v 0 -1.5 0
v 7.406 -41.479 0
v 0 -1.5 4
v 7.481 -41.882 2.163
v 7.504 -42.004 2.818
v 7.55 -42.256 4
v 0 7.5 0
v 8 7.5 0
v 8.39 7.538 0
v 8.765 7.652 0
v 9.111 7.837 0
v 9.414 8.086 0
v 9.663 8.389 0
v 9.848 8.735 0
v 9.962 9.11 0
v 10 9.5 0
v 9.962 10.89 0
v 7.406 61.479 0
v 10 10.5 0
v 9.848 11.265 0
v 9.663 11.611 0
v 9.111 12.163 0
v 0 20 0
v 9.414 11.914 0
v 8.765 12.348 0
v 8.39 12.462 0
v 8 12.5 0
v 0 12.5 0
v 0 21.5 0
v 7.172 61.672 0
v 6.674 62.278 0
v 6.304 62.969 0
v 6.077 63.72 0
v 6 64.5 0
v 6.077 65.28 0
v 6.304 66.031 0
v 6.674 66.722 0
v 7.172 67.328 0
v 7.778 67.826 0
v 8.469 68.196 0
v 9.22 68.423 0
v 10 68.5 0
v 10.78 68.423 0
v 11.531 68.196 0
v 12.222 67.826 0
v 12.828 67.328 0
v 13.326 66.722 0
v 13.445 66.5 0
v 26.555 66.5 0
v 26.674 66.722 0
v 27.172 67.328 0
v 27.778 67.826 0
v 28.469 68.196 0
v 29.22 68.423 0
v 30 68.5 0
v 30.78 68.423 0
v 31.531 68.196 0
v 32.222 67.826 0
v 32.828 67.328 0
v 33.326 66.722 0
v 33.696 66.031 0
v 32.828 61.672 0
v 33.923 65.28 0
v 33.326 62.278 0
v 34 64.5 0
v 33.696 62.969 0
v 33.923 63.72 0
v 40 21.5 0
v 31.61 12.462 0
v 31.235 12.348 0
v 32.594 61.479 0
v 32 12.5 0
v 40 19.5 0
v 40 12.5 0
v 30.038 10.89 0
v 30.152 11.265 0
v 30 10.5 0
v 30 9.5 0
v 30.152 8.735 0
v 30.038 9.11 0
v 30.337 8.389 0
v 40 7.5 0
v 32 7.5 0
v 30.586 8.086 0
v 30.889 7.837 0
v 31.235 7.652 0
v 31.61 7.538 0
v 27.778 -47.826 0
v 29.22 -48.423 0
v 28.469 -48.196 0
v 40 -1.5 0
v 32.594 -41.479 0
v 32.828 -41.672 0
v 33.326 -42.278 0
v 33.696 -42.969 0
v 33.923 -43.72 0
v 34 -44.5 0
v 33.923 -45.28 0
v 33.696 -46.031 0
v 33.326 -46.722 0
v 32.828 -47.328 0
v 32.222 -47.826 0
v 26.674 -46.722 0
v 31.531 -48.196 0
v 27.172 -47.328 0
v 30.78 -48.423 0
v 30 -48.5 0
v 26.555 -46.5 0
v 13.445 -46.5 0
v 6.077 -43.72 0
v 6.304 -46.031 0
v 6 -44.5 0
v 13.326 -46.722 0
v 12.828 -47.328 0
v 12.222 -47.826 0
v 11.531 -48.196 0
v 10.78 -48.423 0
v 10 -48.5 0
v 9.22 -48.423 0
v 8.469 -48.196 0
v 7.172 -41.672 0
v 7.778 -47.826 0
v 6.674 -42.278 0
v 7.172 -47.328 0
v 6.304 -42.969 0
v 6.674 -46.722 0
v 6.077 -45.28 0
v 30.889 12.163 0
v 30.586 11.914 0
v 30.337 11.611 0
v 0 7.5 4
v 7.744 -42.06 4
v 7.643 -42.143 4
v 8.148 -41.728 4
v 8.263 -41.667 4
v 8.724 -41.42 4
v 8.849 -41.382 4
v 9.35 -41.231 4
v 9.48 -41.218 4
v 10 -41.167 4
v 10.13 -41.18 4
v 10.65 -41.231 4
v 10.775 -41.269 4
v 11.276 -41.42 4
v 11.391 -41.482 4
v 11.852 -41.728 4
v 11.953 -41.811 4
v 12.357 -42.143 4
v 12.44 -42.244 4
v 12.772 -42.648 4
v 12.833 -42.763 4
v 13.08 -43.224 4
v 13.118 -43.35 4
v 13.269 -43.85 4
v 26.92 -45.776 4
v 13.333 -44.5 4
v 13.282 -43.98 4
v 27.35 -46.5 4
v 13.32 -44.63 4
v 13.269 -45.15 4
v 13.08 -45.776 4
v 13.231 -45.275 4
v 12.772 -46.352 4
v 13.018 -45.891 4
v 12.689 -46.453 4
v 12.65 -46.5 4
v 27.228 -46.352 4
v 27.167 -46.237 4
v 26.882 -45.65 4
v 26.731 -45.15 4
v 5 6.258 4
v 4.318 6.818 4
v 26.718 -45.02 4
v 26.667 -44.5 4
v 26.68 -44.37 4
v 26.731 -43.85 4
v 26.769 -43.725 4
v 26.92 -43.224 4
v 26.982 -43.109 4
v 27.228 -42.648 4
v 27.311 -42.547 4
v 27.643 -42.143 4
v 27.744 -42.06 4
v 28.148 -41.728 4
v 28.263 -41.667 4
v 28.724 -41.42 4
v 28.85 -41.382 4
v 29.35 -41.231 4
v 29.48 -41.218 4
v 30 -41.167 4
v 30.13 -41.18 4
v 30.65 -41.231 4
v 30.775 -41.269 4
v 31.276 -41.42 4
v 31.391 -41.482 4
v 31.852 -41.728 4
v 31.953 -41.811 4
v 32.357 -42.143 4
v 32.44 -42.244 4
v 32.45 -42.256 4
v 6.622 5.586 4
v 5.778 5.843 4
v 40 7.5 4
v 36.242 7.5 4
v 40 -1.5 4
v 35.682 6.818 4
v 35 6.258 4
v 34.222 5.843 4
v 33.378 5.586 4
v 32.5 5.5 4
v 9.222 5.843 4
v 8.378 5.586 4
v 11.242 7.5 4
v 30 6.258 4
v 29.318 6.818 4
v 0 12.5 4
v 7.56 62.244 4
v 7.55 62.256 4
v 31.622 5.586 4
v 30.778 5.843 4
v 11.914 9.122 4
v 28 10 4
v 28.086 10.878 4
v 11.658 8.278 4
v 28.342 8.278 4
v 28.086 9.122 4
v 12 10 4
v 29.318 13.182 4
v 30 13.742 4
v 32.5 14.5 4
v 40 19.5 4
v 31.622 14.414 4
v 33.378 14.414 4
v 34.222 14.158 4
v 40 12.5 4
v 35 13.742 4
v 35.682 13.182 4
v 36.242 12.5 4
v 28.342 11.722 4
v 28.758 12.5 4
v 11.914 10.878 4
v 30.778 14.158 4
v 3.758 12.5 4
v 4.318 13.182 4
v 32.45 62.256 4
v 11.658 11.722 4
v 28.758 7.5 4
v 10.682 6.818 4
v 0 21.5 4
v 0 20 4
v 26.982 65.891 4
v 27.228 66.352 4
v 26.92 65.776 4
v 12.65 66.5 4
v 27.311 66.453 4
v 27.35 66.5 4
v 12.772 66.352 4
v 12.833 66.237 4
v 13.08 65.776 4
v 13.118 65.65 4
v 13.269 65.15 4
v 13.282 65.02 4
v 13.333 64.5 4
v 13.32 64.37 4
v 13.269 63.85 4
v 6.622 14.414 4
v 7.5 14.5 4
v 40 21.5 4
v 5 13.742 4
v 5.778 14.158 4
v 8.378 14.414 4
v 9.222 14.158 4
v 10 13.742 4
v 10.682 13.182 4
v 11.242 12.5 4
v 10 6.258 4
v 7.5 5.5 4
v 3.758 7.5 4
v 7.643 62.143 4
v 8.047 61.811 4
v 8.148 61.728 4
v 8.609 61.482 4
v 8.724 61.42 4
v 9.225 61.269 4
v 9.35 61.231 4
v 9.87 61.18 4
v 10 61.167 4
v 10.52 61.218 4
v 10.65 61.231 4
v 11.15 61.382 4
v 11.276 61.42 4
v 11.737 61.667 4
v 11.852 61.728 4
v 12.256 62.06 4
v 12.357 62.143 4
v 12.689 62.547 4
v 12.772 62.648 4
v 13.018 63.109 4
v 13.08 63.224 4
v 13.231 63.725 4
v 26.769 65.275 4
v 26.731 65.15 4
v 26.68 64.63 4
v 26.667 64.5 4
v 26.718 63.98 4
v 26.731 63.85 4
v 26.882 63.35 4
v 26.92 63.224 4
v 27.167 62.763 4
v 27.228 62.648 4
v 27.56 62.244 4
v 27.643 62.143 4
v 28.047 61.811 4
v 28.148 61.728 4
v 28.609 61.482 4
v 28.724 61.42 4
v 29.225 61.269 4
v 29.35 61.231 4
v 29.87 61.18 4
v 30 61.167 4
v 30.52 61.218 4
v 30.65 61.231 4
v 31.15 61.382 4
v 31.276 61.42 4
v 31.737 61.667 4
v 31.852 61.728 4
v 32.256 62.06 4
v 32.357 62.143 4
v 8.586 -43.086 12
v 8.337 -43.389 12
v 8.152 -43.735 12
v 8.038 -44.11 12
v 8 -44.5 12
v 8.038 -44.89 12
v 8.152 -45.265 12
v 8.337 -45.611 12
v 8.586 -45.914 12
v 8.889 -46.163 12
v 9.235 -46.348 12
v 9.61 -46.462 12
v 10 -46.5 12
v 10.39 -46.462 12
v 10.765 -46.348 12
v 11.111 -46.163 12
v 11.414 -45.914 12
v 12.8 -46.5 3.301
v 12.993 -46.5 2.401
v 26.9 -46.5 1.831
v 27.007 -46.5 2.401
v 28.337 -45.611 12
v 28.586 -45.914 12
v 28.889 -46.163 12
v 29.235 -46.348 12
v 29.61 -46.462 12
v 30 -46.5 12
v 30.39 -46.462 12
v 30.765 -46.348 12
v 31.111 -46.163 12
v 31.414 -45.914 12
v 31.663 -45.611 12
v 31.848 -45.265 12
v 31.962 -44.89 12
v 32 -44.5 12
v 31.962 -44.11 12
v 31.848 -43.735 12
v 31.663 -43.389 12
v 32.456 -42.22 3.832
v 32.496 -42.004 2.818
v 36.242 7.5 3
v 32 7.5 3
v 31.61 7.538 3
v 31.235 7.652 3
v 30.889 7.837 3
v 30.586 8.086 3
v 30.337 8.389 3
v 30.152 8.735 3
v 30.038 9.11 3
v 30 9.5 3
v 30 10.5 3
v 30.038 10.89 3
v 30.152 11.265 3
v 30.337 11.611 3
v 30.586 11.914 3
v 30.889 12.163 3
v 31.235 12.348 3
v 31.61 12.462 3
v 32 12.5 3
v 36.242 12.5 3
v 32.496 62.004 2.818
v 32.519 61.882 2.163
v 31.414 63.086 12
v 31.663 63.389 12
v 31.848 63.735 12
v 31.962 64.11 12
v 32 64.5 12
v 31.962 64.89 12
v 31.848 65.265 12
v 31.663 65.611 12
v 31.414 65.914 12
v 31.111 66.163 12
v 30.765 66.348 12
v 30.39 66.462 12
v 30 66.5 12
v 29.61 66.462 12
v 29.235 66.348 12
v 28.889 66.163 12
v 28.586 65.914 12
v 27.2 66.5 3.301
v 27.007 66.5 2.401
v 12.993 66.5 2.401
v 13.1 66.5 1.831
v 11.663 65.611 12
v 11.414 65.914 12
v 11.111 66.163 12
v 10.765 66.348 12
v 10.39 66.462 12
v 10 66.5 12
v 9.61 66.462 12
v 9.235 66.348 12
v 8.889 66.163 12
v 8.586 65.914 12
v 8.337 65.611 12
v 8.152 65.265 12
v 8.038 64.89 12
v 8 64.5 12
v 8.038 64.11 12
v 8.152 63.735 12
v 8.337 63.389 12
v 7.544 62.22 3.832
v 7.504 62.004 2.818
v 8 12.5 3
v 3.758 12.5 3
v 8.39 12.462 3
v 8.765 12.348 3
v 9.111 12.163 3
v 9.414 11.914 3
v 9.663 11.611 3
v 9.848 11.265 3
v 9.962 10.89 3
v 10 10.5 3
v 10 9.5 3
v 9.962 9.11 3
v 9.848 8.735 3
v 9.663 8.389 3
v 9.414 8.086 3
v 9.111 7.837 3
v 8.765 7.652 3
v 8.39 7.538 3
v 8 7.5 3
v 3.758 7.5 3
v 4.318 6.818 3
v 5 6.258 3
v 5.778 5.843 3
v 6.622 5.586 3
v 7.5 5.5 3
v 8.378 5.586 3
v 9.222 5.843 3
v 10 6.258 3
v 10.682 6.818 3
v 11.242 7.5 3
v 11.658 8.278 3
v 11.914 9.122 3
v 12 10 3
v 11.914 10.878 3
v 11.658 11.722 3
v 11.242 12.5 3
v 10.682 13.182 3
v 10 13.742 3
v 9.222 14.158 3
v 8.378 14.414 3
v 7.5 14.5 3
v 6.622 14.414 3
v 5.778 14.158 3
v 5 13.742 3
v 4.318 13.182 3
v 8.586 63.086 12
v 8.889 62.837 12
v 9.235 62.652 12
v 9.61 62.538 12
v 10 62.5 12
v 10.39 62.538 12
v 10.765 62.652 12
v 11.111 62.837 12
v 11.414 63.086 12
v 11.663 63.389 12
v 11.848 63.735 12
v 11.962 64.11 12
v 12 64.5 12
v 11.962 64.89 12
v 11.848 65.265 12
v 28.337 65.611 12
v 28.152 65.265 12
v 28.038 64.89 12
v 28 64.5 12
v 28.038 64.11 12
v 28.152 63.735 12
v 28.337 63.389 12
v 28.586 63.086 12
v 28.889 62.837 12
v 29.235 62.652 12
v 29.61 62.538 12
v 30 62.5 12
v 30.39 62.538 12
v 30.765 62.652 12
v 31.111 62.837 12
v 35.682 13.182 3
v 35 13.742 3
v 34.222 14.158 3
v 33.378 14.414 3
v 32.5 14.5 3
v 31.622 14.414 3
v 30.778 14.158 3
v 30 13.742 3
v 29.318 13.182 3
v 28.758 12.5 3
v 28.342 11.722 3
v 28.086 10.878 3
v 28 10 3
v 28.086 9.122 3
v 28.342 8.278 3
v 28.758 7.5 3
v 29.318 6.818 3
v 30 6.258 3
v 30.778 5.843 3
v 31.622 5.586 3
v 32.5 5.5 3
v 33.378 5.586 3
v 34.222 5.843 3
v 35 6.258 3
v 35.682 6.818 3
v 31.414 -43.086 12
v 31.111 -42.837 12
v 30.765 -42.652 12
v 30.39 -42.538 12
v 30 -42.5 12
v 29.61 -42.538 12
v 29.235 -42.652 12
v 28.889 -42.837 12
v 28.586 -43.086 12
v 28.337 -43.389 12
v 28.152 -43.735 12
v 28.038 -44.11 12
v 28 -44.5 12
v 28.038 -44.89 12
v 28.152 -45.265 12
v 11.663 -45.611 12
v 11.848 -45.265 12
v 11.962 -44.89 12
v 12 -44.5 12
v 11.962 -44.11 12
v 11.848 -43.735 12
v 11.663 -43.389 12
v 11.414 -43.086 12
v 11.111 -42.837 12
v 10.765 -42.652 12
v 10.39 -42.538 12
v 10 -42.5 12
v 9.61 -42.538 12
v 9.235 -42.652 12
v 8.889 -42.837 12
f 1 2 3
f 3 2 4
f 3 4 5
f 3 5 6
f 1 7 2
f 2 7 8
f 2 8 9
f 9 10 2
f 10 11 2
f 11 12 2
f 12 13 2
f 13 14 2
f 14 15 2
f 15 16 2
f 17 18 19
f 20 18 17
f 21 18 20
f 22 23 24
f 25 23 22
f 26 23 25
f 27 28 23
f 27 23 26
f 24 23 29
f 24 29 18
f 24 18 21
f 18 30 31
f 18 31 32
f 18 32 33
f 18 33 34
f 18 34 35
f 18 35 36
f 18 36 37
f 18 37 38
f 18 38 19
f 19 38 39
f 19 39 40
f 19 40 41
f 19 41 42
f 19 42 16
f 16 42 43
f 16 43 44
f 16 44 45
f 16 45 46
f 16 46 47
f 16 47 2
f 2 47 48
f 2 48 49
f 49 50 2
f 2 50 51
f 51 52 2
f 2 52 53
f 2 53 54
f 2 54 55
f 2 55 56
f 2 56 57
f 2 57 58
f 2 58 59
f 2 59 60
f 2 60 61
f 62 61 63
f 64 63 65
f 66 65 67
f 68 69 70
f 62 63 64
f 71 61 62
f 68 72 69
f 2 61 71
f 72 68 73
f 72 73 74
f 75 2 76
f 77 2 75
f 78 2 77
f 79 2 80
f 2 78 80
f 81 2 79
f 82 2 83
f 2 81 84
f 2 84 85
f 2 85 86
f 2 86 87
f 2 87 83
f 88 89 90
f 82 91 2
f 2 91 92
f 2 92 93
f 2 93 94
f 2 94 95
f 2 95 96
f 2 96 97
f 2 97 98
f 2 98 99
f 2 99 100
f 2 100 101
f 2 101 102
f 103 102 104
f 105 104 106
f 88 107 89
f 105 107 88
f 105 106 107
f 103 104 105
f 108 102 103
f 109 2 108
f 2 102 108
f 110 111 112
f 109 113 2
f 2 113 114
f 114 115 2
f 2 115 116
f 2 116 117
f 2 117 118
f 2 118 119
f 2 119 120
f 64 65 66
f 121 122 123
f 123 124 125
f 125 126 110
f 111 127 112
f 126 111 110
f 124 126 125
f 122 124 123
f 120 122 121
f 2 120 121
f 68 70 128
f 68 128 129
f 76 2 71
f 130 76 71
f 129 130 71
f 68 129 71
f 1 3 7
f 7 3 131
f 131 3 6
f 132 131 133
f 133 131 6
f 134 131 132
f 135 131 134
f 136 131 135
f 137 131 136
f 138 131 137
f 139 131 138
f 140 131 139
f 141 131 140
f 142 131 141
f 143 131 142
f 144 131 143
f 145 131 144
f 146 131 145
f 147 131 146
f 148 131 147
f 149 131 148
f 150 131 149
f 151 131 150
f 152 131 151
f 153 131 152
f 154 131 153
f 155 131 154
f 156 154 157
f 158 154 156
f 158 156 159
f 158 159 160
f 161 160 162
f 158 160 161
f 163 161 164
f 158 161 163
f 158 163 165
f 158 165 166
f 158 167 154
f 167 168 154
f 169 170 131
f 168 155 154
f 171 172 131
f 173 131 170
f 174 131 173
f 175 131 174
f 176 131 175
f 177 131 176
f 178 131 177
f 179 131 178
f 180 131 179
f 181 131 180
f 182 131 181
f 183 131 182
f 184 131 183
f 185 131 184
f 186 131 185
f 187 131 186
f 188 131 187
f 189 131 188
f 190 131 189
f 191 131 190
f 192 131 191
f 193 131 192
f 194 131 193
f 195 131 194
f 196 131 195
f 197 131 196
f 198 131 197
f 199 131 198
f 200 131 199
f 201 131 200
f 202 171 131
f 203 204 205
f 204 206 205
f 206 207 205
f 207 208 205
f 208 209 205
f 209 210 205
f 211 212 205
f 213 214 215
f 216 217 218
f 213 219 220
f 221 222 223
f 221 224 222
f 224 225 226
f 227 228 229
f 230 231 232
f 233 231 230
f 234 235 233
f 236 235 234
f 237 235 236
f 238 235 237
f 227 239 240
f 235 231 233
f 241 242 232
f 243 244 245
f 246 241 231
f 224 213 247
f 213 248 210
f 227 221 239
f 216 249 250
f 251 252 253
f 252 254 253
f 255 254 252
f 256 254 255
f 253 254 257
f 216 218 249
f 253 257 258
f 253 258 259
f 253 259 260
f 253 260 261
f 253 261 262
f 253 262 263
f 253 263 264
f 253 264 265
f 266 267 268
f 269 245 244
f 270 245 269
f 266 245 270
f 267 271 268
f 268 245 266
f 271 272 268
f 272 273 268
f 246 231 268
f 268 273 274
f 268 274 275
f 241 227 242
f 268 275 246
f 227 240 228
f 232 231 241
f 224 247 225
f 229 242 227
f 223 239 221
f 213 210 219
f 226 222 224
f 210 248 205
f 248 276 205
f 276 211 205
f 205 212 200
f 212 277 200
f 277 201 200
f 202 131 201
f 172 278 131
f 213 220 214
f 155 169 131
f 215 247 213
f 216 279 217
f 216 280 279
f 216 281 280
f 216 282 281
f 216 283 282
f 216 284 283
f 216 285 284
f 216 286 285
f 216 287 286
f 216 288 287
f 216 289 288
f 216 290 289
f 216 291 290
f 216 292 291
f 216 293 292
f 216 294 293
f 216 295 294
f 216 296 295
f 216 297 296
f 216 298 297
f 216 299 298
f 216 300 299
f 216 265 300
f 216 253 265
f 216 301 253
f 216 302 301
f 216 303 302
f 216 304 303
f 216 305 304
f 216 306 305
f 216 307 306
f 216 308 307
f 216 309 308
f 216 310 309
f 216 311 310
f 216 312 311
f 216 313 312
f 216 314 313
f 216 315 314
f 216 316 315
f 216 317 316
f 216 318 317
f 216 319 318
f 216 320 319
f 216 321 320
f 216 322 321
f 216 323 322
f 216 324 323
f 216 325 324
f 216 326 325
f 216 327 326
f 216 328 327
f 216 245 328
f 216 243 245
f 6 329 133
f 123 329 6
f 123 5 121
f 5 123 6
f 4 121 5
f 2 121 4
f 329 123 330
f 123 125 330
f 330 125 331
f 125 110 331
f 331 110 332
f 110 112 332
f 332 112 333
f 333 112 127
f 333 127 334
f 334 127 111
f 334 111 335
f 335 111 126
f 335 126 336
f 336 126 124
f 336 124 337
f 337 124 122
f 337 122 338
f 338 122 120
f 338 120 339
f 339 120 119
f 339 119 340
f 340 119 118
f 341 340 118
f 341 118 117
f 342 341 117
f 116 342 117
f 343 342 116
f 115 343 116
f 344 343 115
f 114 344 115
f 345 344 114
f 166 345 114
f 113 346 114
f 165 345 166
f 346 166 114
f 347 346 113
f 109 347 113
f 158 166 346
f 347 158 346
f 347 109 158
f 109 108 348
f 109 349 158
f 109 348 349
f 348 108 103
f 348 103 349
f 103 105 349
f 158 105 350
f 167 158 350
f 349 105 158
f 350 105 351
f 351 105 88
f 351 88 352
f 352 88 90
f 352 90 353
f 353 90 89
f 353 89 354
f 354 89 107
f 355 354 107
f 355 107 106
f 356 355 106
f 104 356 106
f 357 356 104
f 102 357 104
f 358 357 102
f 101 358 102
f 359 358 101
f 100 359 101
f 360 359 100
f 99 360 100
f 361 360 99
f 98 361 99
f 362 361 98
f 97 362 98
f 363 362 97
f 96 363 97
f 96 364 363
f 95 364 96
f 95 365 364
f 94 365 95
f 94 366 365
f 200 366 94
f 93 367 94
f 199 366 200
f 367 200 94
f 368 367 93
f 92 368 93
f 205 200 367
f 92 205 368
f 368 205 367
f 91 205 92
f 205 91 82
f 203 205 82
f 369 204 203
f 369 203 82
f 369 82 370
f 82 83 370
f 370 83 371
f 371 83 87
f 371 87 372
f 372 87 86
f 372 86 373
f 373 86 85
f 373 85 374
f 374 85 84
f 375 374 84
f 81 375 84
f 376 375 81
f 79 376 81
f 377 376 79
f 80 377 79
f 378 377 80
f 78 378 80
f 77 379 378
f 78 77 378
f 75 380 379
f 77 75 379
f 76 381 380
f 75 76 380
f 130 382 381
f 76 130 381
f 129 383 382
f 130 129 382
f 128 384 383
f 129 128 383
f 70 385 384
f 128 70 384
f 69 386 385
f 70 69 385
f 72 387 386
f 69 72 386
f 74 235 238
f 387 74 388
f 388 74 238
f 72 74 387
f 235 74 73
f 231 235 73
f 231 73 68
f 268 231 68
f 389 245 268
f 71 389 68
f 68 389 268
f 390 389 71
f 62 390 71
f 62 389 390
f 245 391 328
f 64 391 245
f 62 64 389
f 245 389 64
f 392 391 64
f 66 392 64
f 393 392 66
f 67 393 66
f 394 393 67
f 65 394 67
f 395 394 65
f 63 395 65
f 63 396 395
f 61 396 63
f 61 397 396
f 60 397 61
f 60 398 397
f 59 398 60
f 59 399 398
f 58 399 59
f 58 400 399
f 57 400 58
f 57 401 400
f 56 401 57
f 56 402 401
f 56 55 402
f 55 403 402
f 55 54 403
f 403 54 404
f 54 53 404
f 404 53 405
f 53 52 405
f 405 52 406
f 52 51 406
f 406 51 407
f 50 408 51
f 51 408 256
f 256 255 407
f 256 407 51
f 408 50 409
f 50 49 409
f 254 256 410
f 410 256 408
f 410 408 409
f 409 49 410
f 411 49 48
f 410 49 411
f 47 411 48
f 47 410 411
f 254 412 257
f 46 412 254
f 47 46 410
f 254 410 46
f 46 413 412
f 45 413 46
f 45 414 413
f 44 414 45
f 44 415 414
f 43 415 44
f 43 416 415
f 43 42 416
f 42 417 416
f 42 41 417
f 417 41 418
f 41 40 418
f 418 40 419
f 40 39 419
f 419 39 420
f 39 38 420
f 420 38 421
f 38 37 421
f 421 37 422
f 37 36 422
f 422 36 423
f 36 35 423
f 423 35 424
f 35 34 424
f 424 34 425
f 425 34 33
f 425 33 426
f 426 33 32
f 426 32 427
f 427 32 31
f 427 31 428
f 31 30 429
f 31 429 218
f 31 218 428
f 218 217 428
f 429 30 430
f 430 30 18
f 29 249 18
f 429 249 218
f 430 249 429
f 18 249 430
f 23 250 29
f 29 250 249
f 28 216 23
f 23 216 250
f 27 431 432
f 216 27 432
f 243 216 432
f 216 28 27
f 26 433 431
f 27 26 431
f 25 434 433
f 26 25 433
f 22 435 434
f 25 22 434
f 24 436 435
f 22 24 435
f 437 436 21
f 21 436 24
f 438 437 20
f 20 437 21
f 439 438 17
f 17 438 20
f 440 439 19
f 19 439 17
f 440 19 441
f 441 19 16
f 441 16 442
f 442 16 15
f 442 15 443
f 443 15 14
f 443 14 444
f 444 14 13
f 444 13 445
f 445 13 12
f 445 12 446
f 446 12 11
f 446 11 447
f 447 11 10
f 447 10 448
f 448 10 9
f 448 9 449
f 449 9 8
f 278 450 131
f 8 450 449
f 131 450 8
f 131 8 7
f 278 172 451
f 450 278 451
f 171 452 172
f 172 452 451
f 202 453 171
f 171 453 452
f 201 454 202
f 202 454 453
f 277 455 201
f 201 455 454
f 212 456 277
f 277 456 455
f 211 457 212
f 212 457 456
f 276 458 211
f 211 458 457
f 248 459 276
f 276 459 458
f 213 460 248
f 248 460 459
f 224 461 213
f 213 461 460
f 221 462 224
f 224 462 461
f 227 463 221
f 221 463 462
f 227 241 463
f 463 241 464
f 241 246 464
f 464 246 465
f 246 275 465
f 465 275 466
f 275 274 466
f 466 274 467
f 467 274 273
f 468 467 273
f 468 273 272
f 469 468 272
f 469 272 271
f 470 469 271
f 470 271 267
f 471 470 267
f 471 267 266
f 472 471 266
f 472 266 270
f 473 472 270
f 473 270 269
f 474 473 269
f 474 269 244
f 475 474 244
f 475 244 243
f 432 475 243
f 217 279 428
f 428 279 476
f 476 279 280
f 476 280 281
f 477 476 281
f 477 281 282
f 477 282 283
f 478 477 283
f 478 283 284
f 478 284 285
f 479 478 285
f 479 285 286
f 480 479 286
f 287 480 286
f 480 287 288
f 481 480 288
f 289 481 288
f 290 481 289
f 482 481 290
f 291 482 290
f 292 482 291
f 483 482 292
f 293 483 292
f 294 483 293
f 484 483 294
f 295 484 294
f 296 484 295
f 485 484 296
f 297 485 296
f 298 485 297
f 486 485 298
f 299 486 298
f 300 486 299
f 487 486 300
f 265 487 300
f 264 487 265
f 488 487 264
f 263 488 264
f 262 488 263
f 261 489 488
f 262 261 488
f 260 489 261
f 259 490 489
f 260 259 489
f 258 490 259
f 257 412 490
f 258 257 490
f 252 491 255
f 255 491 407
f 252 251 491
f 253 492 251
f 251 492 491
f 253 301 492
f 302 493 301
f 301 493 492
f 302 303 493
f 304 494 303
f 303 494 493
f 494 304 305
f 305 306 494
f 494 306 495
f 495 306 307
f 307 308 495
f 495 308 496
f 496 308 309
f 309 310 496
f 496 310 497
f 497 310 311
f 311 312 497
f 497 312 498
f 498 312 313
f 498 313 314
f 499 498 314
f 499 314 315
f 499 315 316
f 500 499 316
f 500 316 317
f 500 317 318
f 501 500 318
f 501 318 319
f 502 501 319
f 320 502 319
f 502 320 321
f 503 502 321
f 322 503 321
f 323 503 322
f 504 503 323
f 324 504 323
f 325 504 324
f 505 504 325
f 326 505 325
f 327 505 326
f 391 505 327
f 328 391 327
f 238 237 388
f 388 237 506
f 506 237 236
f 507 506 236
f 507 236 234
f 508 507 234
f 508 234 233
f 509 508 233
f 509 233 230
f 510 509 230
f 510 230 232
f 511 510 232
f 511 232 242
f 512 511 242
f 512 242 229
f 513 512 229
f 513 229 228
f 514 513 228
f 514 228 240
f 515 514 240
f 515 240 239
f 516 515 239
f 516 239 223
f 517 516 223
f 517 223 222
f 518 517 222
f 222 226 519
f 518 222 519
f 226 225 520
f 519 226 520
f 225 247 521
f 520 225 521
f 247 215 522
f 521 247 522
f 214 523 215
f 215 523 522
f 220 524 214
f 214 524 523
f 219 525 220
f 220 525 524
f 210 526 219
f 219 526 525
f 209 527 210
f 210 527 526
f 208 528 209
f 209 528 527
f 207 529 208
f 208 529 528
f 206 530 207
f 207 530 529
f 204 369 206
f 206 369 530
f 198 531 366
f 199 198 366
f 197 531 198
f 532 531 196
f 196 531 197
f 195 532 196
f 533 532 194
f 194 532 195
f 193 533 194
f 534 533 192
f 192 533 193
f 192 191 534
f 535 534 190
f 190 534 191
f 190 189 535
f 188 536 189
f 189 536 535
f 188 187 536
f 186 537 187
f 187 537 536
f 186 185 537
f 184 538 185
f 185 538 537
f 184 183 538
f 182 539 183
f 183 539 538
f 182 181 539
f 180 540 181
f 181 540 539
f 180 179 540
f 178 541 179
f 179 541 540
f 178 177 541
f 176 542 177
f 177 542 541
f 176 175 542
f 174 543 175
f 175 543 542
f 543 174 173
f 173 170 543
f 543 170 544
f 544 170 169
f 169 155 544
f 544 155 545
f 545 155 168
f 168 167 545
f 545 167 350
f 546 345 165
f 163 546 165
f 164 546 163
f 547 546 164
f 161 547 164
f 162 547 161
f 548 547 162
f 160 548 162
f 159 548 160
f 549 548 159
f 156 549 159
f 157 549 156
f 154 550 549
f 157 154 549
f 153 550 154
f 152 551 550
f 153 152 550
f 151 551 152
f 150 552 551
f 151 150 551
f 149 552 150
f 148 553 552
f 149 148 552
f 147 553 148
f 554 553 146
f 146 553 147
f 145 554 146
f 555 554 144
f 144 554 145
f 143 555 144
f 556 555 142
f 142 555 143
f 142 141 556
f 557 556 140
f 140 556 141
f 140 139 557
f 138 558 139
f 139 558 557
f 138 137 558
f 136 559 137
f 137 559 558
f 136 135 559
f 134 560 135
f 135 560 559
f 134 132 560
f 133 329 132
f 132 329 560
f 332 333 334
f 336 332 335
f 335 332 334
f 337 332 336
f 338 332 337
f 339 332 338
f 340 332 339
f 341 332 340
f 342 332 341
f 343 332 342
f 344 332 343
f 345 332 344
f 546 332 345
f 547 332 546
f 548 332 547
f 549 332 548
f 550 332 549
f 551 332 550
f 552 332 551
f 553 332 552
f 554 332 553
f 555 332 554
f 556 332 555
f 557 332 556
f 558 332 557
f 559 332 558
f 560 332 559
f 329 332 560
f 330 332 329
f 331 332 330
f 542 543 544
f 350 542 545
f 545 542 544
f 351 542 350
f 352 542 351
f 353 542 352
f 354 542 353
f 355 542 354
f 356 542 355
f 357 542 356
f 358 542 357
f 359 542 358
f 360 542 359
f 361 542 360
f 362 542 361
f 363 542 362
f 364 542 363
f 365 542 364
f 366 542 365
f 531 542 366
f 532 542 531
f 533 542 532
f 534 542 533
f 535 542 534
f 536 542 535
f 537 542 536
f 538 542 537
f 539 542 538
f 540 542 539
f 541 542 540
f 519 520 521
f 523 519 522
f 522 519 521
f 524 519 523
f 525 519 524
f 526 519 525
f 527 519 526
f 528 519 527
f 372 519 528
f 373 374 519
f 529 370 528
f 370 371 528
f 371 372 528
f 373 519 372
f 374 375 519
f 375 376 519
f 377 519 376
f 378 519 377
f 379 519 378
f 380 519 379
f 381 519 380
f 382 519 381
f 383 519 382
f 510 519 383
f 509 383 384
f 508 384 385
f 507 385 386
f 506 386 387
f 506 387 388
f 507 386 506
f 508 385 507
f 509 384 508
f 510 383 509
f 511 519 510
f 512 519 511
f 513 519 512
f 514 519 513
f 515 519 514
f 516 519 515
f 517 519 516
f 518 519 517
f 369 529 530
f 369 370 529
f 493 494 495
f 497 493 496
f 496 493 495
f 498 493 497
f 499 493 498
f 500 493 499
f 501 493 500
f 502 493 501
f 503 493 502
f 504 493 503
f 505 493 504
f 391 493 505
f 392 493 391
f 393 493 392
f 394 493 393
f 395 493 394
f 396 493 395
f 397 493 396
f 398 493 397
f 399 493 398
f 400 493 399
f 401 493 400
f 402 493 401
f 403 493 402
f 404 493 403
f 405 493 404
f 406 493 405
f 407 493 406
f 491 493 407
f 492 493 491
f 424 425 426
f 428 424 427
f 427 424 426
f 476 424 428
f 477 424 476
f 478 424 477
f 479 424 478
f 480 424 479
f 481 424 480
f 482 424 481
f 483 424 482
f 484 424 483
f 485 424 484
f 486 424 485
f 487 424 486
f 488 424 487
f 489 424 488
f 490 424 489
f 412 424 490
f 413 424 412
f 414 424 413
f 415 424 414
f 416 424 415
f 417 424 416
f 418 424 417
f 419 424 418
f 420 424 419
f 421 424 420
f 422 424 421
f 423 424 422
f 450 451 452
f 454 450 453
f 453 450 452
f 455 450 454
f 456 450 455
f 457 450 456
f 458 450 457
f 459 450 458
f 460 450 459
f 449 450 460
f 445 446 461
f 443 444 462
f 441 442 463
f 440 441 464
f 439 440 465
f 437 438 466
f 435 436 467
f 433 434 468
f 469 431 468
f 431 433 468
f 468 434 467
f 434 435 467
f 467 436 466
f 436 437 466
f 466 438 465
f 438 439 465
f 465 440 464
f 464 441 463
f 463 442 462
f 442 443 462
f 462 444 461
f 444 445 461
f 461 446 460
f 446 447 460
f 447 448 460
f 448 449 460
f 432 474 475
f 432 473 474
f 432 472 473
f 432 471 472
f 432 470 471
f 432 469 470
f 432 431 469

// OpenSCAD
$fn=32;


difference() {
  cube([40,20,4]);
  translate([30,7.5,-1]) roundedcube(12,5,6,2);
  translate([-2,7.5,-1]) roundedcube(12,5,6,2);
  translate([32.5,10,3]) cylinder(4,4.5,4.5);
  translate([7.5,10,3]) cylinder(4,4.5,4.5);
}
translate([0,0.5,0]) leg();
translate([40,19.5,0]) rotate([0,0,180]) leg();



module roundedcube(x, y, z, cr) {
  hull() {
    translate([cr,cr,0]) cylinder(z,cr,cr);
    translate([x-cr,cr,0]) cylinder(z,cr,cr);
    translate([cr,y-cr,0]) cylinder(z,cr,cr);
    translate([x-cr,y-cr,0]) cylinder(z,cr,cr);
  }
}

module leg() {
  hull() {
    translate([0,-2,0]) cube([2,2,4]);
    translate([38,-2,0]) cube([2,2,4]);
    translate([10,-45,0]) cylinder(4,2,2);
    translate([30,-45,0]) cylinder(4,2,2);
  }
  translate([10,-45,0]) cylinder(12,4,2);
  translate([30,-45,0]) cylinder(12,4,2);
}
